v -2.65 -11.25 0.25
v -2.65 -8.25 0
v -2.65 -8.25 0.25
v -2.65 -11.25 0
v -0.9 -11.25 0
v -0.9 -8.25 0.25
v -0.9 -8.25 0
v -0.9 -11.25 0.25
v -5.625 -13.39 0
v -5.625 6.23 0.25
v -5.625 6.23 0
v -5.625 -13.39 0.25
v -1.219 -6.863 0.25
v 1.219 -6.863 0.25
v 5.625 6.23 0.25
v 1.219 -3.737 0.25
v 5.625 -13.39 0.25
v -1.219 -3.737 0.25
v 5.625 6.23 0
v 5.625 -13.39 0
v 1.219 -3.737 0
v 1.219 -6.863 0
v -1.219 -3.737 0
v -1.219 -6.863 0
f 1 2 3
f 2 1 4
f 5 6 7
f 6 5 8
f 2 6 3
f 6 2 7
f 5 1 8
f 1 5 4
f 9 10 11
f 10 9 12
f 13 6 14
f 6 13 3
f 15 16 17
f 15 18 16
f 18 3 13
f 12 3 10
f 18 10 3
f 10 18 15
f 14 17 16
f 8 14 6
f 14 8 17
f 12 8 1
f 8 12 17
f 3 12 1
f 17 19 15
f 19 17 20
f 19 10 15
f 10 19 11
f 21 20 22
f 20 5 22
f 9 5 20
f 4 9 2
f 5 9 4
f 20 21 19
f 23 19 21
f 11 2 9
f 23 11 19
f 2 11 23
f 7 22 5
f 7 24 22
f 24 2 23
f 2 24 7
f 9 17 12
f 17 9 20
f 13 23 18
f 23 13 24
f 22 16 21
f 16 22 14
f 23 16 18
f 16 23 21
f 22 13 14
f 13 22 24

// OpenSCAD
module channel1(){
    rotate ([0,0,270])
        rotate_extrude(angle=90, $fn = 300)
            translate([.5, .0485]) square([.6,.2247],true);
    
    translate([0,1.11,-.001])
        rotate_extrude(angle=45, $fn = 300)
            translate([.5, .0485]) square([.6,.2247],true);
    
    translate([.2,-.01,-.064])
        cube([.6, 1.125,.225],false);
    
    translate([.15, 1.243,-.064])
    rotate ([0,0,45])
        cube([.6, 1.45,.225],false);
}

module channel2(){  
    translate([-1.863, -8.75,-.064])
        cube([.6, 1.25,.225],false);
   
    translate([-1.0625, -7.5,-.001])
    rotate ([180,0,180])
        rotate_extrude(angle=45, $fn = 300)
            translate([.5, -.0485]) square([.6,.225],true);
    
      translate([-.245, -6.4,-.064])
      rotate ([0,0,135])
        cube([.6, 1.37,.225],false); 
}

module channel3(){

    translate([-.875, 4,-.001])
        rotate_extrude(angle=45, $fn = 300)
            translate([.5, 0.0485]) square([.6,.225],true);
    
        translate([-3, -2.75,-.001])
    rotate([0,0,90])
        rotate_extrude(angle=90, $fn = 300)
            translate([.5, 0.0485]) square([.6,.225],true);
    
        translate([-.875, -2.75,-.001])
        rotate_extrude(angle=90, $fn = 300)
            translate([.5, 0.0485]) square([.6,.225],true);
    
    translate([-.675, -3.975,-.064])
        cube([.6, 8,.225],false);
    
    translate([4.75, -2.04,-.064])
    rotate([0,0,90])
        cube([.6, 5,.225],false);
    
    translate([-.175, -3.975,-.064])
        cube([.6, 2.5,.225],false);
    
           
    translate([-.8, -2.55,-.064])
    rotate([0,0,90])
        cube([.6, 2.25,.225],false);   
}

module riser2_cutout(){ // riser for kettle
    union(){
        translate([-.625, 0, .375])
        cylinder(1, r=.25, center = true, $fn=30);
        translate([.625, 0, .375])
        cylinder(1, r=.25, center = true, $fn=30);
    }
}

module button_cutout(){ // push botton cutout
  
    translate([.25, -.5, -.07]) 
       cube([1.75, 3, .66], center = false);
      
    translate([.5, 1.75, .5125]) //control button
        button();
  
    translate([.5, 0, .5125])  // north button
        button();
    
    translate([.875, .5, .5125]) // west button
        button();
    
    translate([.125, .5, .5125]) // east button
        button();
    
    translate([.5, 1, .5125])
        button();          // south button    
}
    
module button(){ // push botton 

        translate([.625, 0, .166])
        color( "black", 1.0 )
            cylinder(.1875, r=.0625, center = true, $fn=30);
    
        translate([.625, 0, 0])
             cube([.25, .4375, .156], center = true);  
}

module StepMotor28BYJ_Cutout(){
    union(){
        translate  ([-.315,0, 0])
            cylinder(h = 1, r = .55, center = true, $fn = 32);
        translate([-.815, 0, 0])
            cube([.5, .75, 1], center = true);
        }       
}

module motor_bases() {
    
difference (){
union(){
    translate([0, 2.89, .375])
        cylinder(.75, r=3.5, $fn=300, center=true); // cup platform
        
    translate([0, -2, .375])
        cube([2.9375, 4, .75], center = true); // center arm
    
    translate([-1.965, .2025, .375])
    rotate([0, 0, 100])
        cube([.5, 1, .75], center = true); // west arm filler
   
    translate([-3.5, 2.37, .375])
    rotate([0, 0, 317])
        cube([.5, 1, .75], center = true); // west arm filler 
   
    translate([1.362, 5.9, .375])
    rotate([0, 0, 19])
        cube([.5, 1, .75], center = true); // center/ north arm filler
        
    translate([-1.362, 5.9, .375])
    rotate([0, 0, 341])
        cube([.5, 1, .75], center = true); // center/ north arm filler 
    
    translate([1.965, .2025, .375])
    rotate([0, 0, 80])
        cube([.5, 1, .75], center = true); // east arm filler 
    
    translate([3.5, 2.37, .375])
    rotate([0, 0, 43])
        cube([.5, .5, .75], center = true); // east arm filler 
           
    translate([-1.27, -.2, .375])
    rotate([0, 0, 33])
        cube([.5, .5, .75], center = true); // center arm filler north west
    
    translate([1.27, -.2, .375])
    rotate([0, 0, -30])
        cube([.5, .5, .75], center = true); // center arm filler north east
       
    translate([-1.27, -3.72, .375])
    rotate([0, 0, 332])
        cube([.5, .5, .75], center = true); // center arm filler south west 
    
    translate([1.27, -3.72, .375])
    rotate([0, 0, 28])
        cube([.5, .5, .75], center = true); // center arm filler south east 
    
    translate([0, 5.774, .375])
    rotate([0, 0, 0])
        cube([2.0625, 5.774, .75], center=true); // north arm
        
    translate([2.5, 1.45, .375])
    rotate([0, 0, 60])
        cube([2.0625, 5.774, .75], center=true); // east arm  
      
    translate([-2.5, 1.45, .375])
    rotate([0, 0, 120])
        cube([2.0625, 5.774, .75], center=true); // west arm
    
    translate([0, 7.245, 0])
        cylinder(.75, r=1.875, $fn=300, center=false); // north outcrop
    
    translate([-3.75, .75, 0])
        cylinder(.75, r=1.875, $fn=300, center=false); // west outcrop
    
    translate([3.75, .75, 0])
        cylinder(.75, r=1.875, $fn=300, center=false); // east outcrop

    translate([0, -8.5, 0]) // base for kettle
        hull(){                   
            translate([0, 1, .375])
            cylinder(.75, r=3, $fn=300, center=true); 
            translate([0, 2.25, .375])
            cylinder(.75, r=3, $fn=300, center=true); 
    }
}

    translate([-1.593, -.347, .375])
        cylinder(.875, r=.125, $fn=30, center=true); // Round corner cent. platform north west

    translate([1.593, -.347, .375])
        cylinder(.875, r=.125, $fn=30, center=true); // Round corner cent. platform north east

    translate([-1.593, -3.567, .375])
        cylinder(.875, r=.125, $fn=30, center=true); // Round corner cent. platform south west

    translate([1.593, -3.567, .375])
        cylinder(.875, r=.125, $fn=30, center=true); // Round corner cent. platform south east

    translate([-1.965, -.14, .375])
        cylinder(.875, r=.125, $fn=30, center=true); // Round corner west outcrop

    translate([-3.609, 2.739, .375])
        cylinder(.875, r=.125, $fn=30, center=true); // Round corner west outcrop

    translate([1.966, -.1375, .375])
        cylinder(.875, r=.125, $fn=30, center=true); // Round corner east outcrop

    translate([3.609, 2.739, .375])
        cylinder(.875, r=.125, $fn=30, center=true); // Round corner east outcrop

    translate([1.639, 6.106, .375])
        cylinder(.875, r=.125, $fn=30, center=true); // Round corner north outcrop
        
    translate([-1.639, 6.106, .375])
        cylinder(.875, r=.125, $fn=30, center=true); // Round corner north outcrop     
}
}

///////////////// CODE BEGINS//////////////////

difference() {
    
    translate([-5.625, -13.39, 0])
        cube([11.25, 19.62,.25],false); 
    
    //translate([0,-2.89,0])
      //  motor_bases();
  /* 
    translate([1.5,-9, -.01])
        channel1(); 
   
    translate([0, 0, 0])
        channel2(); 
    
    translate([0, 0, 0])
        channel3();
*/
    translate([-2.9, -10.75, .065])
        button_cutout(); //This has been verified.
   
//    translate([-1.5, -4.987, .145]) 
//        cube([ .75, 2.5, .3], center=true); // outlet cutout
    
    translate([0, -5.3, .24]) 
        cube([ 2.4375, 3.126, .5], center=true); // board cutout

    translate([0, 0, .501])
        cylinder(.25, r=3.625, $fn=30); //removes material from platform for effector
    
////Through Holes//////
 /*  
    translate([-1, 5.193, .375]) //north stepper cutout
    rotate ([0, 180, 300])    
        StepMotor28BYJ_Cutout();

    translate ([-4.0003, -3.4675, .375]) //west stepper cutout
    rotate ([0, 180, 60])
        StepMotor28BYJ_Cutout();

    translate ([5.0003, -1.7355, .375]) //east stepper cutout    
    rotate ([0, 180, 180])
        StepMotor28BYJ_Cutout();
         
    translate([.46, -9.5, .375]) //kettle stepper cutout
    rotate ([0, 0, 180])
        StepMotor28BYJ_Cutout();
        
    translate([-0, -7.45, 0])  
        riser2_cutout();
 */  
///// Marking of eyelet locations -- tool change small bit 
      
    //translate([0, 5.77, .5])
        //%cylinder(1.55, r=.015, $fn=30, center=false); // cable pivot point north
    
    //translate([-5, -2.89, .5])
        //%cylinder(.55, r=0.015, $fn=30, center=false); // west outcrop
     
    //translate([5, -2.89, .50])
        //%cylinder(.55, r=.015, $fn=30, center=false); // east outcrop
  
    //translate([0, 0, .25])
        //%cylinder(.55, r=.015, $fn=30, center=false); // center (coordinate 0,0)
        
    translate([0, 5.895, .5625])
        cylinder(.55, r=.015, $fn=30, center=false); // cable pivot point north w/offset
            
    translate([-5.108, -2.9525, .5])
        cylinder(.55, r=0.015, $fn=30, center=false); // west outcrop w/offset
        
    translate([5.108, -2.9525, .5])
        cylinder(.55, r=.015, $fn=30, center=false); // east outcrop w/offset
        
    translate([0, -11.45, .5])
        cylinder(.55, r=.015, $fn=30, center=false); // kettle rear eyelette
        
    translate([0, -5.1375, .5])
        cylinder(.55, r=.015, $fn=30, center=false); // kettle front eyelette
}
